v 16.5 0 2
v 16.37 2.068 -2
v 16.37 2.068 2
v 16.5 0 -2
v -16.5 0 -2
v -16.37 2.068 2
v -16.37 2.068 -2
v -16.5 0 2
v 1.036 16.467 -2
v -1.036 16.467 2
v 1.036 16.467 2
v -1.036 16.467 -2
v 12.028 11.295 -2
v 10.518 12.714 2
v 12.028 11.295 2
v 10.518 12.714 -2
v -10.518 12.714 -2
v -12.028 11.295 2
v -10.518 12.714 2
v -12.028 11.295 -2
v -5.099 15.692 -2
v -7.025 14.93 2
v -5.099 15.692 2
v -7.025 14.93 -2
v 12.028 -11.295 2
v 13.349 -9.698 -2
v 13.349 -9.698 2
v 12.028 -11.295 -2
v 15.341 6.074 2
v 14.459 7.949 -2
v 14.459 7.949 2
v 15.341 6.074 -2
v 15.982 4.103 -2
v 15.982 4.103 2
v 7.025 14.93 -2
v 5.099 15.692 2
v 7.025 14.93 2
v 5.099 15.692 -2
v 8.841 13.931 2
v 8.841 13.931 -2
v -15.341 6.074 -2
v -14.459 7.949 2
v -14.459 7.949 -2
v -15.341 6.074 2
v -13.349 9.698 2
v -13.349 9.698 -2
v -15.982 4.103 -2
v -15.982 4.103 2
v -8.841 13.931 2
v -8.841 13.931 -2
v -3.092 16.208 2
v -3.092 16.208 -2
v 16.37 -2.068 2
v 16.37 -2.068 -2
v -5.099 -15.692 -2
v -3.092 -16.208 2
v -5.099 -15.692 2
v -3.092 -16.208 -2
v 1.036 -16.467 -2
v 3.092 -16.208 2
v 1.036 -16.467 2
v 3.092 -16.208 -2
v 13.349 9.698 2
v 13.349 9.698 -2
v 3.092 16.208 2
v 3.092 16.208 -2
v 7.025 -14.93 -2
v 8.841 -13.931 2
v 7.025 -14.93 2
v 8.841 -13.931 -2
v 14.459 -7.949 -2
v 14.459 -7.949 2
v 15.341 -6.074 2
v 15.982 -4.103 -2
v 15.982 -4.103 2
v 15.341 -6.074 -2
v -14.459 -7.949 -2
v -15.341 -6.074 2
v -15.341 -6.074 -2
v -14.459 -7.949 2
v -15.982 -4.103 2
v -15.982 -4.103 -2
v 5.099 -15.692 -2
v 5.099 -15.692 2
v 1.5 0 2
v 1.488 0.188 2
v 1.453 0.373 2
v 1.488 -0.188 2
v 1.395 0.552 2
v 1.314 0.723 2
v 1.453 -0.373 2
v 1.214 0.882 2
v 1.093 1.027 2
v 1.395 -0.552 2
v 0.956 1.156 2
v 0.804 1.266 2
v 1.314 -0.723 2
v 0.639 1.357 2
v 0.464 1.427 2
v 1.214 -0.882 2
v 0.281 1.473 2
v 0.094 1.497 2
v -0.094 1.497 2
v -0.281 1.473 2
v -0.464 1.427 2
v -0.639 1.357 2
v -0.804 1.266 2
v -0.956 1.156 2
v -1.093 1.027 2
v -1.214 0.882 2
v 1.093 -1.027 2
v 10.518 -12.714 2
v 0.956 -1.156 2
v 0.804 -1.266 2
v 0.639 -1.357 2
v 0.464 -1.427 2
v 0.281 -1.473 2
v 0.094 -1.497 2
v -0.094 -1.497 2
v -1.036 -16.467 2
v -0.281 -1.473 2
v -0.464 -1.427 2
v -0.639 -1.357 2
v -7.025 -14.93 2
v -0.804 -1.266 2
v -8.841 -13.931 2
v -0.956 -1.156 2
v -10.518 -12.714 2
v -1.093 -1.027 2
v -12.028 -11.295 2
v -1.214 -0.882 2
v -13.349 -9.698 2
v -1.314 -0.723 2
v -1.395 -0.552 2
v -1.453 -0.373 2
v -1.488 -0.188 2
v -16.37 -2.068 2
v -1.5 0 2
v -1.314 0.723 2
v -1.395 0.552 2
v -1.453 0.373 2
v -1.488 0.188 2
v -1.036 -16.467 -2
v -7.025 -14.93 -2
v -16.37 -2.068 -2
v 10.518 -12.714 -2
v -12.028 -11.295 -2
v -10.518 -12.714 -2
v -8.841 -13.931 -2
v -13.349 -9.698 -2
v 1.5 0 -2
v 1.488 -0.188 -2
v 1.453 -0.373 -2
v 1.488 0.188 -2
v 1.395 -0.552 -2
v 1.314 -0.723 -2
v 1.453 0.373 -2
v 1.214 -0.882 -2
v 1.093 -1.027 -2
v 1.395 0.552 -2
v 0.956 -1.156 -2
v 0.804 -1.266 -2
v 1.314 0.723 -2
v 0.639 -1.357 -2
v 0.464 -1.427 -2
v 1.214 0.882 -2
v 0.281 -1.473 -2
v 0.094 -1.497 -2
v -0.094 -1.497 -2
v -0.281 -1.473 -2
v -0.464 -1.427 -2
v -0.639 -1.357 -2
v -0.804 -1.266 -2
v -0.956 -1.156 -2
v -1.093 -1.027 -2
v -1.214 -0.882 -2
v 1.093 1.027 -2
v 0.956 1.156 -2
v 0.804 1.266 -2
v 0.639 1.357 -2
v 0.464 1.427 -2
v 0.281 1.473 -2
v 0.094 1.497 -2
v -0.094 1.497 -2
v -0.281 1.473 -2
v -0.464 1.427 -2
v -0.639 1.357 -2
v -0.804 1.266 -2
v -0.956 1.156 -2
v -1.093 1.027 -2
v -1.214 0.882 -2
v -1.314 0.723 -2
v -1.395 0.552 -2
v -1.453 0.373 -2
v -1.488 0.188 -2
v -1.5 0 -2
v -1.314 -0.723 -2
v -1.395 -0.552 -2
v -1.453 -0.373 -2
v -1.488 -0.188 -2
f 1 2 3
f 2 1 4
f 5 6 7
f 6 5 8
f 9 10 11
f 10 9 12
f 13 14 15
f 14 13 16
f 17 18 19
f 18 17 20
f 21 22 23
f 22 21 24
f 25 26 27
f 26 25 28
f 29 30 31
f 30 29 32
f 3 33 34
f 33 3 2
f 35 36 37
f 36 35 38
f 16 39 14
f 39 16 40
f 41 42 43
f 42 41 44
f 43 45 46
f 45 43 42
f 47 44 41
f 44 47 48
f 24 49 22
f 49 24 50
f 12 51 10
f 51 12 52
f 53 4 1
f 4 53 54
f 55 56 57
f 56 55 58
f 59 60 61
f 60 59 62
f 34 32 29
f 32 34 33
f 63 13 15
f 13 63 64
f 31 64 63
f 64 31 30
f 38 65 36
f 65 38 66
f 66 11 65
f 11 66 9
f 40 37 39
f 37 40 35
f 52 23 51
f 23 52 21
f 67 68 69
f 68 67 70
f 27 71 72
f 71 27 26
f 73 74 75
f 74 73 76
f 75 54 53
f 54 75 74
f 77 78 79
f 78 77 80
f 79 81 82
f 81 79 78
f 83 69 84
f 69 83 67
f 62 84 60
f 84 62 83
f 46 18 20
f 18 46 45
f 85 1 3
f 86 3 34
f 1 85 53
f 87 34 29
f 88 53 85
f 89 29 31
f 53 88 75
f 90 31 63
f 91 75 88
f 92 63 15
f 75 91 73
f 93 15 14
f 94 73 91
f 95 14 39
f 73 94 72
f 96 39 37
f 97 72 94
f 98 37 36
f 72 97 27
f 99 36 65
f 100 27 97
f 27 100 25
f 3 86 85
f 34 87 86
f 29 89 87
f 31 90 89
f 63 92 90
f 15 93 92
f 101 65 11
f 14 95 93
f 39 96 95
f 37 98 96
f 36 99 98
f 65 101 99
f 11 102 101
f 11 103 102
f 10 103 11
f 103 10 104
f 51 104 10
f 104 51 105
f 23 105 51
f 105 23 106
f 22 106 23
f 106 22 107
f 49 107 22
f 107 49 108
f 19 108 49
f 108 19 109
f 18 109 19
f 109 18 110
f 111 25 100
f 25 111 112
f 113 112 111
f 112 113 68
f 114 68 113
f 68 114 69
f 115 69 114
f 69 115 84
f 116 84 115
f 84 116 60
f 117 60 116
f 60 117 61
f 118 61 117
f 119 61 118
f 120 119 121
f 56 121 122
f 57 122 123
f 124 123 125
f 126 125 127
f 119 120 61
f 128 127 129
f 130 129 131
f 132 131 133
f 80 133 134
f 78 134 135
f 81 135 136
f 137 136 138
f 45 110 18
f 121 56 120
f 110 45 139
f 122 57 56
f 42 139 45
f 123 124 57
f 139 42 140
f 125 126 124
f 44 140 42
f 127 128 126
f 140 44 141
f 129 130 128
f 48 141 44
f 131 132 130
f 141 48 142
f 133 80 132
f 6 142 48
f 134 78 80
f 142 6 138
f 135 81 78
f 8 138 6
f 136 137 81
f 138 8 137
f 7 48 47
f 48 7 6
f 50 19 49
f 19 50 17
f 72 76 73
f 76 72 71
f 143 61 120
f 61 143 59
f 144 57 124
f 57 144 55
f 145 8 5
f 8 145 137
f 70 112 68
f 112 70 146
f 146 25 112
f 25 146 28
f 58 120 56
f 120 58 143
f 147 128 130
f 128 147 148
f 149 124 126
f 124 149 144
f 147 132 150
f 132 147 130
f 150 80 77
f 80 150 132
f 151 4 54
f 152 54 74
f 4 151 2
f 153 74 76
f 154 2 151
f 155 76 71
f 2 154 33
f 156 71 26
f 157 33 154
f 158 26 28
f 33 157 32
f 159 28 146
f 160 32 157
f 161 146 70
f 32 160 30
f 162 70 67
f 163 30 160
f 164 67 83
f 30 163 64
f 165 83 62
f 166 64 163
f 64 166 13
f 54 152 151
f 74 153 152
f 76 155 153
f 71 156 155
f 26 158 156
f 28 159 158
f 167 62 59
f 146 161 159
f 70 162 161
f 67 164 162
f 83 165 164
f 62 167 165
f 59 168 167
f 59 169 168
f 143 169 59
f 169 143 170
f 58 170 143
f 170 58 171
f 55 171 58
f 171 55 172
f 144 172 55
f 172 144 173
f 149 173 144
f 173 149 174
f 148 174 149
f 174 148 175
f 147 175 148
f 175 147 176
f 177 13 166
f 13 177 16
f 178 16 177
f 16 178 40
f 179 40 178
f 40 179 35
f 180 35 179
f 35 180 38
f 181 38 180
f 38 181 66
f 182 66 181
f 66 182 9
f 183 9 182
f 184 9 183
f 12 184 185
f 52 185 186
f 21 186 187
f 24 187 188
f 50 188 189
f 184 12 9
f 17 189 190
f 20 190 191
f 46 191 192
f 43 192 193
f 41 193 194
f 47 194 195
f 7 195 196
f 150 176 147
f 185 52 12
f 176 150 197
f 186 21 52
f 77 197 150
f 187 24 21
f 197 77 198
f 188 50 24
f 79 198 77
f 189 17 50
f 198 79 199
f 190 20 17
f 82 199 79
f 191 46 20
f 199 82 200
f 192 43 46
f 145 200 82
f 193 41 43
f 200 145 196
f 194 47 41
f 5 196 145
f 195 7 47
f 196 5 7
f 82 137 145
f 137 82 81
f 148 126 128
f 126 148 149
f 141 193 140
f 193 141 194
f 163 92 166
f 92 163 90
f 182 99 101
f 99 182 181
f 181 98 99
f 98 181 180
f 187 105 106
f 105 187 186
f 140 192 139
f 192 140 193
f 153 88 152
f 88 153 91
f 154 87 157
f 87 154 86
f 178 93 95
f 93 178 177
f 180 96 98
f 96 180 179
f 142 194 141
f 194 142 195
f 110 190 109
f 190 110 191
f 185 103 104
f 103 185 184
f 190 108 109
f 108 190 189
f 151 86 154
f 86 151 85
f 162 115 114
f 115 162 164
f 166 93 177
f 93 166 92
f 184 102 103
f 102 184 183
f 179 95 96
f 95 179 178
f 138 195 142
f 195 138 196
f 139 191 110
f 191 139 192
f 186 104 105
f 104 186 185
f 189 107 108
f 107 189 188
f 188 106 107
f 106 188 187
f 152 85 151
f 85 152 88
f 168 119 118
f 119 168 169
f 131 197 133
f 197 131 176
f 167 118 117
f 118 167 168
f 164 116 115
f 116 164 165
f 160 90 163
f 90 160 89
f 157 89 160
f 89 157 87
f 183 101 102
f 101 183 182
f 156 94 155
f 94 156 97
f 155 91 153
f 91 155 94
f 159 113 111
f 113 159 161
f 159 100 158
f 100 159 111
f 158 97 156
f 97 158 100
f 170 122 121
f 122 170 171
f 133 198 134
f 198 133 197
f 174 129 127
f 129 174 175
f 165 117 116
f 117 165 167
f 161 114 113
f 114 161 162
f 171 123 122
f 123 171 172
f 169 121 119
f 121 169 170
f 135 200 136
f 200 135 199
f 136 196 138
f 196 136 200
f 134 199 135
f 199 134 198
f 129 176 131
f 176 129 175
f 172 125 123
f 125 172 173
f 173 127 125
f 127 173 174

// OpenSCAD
$fn = 50;


difference() {
	union() {
		translate(v = [0, 0, -2.0000000000]) {
			cylinder(h = 4, r = 16.5000000000);
		}
	}
	union() {
		translate(v = [0, 0, -100.0000000000]) {
			cylinder(h = 200, r = 1.5000000000);
		}
	}
}
